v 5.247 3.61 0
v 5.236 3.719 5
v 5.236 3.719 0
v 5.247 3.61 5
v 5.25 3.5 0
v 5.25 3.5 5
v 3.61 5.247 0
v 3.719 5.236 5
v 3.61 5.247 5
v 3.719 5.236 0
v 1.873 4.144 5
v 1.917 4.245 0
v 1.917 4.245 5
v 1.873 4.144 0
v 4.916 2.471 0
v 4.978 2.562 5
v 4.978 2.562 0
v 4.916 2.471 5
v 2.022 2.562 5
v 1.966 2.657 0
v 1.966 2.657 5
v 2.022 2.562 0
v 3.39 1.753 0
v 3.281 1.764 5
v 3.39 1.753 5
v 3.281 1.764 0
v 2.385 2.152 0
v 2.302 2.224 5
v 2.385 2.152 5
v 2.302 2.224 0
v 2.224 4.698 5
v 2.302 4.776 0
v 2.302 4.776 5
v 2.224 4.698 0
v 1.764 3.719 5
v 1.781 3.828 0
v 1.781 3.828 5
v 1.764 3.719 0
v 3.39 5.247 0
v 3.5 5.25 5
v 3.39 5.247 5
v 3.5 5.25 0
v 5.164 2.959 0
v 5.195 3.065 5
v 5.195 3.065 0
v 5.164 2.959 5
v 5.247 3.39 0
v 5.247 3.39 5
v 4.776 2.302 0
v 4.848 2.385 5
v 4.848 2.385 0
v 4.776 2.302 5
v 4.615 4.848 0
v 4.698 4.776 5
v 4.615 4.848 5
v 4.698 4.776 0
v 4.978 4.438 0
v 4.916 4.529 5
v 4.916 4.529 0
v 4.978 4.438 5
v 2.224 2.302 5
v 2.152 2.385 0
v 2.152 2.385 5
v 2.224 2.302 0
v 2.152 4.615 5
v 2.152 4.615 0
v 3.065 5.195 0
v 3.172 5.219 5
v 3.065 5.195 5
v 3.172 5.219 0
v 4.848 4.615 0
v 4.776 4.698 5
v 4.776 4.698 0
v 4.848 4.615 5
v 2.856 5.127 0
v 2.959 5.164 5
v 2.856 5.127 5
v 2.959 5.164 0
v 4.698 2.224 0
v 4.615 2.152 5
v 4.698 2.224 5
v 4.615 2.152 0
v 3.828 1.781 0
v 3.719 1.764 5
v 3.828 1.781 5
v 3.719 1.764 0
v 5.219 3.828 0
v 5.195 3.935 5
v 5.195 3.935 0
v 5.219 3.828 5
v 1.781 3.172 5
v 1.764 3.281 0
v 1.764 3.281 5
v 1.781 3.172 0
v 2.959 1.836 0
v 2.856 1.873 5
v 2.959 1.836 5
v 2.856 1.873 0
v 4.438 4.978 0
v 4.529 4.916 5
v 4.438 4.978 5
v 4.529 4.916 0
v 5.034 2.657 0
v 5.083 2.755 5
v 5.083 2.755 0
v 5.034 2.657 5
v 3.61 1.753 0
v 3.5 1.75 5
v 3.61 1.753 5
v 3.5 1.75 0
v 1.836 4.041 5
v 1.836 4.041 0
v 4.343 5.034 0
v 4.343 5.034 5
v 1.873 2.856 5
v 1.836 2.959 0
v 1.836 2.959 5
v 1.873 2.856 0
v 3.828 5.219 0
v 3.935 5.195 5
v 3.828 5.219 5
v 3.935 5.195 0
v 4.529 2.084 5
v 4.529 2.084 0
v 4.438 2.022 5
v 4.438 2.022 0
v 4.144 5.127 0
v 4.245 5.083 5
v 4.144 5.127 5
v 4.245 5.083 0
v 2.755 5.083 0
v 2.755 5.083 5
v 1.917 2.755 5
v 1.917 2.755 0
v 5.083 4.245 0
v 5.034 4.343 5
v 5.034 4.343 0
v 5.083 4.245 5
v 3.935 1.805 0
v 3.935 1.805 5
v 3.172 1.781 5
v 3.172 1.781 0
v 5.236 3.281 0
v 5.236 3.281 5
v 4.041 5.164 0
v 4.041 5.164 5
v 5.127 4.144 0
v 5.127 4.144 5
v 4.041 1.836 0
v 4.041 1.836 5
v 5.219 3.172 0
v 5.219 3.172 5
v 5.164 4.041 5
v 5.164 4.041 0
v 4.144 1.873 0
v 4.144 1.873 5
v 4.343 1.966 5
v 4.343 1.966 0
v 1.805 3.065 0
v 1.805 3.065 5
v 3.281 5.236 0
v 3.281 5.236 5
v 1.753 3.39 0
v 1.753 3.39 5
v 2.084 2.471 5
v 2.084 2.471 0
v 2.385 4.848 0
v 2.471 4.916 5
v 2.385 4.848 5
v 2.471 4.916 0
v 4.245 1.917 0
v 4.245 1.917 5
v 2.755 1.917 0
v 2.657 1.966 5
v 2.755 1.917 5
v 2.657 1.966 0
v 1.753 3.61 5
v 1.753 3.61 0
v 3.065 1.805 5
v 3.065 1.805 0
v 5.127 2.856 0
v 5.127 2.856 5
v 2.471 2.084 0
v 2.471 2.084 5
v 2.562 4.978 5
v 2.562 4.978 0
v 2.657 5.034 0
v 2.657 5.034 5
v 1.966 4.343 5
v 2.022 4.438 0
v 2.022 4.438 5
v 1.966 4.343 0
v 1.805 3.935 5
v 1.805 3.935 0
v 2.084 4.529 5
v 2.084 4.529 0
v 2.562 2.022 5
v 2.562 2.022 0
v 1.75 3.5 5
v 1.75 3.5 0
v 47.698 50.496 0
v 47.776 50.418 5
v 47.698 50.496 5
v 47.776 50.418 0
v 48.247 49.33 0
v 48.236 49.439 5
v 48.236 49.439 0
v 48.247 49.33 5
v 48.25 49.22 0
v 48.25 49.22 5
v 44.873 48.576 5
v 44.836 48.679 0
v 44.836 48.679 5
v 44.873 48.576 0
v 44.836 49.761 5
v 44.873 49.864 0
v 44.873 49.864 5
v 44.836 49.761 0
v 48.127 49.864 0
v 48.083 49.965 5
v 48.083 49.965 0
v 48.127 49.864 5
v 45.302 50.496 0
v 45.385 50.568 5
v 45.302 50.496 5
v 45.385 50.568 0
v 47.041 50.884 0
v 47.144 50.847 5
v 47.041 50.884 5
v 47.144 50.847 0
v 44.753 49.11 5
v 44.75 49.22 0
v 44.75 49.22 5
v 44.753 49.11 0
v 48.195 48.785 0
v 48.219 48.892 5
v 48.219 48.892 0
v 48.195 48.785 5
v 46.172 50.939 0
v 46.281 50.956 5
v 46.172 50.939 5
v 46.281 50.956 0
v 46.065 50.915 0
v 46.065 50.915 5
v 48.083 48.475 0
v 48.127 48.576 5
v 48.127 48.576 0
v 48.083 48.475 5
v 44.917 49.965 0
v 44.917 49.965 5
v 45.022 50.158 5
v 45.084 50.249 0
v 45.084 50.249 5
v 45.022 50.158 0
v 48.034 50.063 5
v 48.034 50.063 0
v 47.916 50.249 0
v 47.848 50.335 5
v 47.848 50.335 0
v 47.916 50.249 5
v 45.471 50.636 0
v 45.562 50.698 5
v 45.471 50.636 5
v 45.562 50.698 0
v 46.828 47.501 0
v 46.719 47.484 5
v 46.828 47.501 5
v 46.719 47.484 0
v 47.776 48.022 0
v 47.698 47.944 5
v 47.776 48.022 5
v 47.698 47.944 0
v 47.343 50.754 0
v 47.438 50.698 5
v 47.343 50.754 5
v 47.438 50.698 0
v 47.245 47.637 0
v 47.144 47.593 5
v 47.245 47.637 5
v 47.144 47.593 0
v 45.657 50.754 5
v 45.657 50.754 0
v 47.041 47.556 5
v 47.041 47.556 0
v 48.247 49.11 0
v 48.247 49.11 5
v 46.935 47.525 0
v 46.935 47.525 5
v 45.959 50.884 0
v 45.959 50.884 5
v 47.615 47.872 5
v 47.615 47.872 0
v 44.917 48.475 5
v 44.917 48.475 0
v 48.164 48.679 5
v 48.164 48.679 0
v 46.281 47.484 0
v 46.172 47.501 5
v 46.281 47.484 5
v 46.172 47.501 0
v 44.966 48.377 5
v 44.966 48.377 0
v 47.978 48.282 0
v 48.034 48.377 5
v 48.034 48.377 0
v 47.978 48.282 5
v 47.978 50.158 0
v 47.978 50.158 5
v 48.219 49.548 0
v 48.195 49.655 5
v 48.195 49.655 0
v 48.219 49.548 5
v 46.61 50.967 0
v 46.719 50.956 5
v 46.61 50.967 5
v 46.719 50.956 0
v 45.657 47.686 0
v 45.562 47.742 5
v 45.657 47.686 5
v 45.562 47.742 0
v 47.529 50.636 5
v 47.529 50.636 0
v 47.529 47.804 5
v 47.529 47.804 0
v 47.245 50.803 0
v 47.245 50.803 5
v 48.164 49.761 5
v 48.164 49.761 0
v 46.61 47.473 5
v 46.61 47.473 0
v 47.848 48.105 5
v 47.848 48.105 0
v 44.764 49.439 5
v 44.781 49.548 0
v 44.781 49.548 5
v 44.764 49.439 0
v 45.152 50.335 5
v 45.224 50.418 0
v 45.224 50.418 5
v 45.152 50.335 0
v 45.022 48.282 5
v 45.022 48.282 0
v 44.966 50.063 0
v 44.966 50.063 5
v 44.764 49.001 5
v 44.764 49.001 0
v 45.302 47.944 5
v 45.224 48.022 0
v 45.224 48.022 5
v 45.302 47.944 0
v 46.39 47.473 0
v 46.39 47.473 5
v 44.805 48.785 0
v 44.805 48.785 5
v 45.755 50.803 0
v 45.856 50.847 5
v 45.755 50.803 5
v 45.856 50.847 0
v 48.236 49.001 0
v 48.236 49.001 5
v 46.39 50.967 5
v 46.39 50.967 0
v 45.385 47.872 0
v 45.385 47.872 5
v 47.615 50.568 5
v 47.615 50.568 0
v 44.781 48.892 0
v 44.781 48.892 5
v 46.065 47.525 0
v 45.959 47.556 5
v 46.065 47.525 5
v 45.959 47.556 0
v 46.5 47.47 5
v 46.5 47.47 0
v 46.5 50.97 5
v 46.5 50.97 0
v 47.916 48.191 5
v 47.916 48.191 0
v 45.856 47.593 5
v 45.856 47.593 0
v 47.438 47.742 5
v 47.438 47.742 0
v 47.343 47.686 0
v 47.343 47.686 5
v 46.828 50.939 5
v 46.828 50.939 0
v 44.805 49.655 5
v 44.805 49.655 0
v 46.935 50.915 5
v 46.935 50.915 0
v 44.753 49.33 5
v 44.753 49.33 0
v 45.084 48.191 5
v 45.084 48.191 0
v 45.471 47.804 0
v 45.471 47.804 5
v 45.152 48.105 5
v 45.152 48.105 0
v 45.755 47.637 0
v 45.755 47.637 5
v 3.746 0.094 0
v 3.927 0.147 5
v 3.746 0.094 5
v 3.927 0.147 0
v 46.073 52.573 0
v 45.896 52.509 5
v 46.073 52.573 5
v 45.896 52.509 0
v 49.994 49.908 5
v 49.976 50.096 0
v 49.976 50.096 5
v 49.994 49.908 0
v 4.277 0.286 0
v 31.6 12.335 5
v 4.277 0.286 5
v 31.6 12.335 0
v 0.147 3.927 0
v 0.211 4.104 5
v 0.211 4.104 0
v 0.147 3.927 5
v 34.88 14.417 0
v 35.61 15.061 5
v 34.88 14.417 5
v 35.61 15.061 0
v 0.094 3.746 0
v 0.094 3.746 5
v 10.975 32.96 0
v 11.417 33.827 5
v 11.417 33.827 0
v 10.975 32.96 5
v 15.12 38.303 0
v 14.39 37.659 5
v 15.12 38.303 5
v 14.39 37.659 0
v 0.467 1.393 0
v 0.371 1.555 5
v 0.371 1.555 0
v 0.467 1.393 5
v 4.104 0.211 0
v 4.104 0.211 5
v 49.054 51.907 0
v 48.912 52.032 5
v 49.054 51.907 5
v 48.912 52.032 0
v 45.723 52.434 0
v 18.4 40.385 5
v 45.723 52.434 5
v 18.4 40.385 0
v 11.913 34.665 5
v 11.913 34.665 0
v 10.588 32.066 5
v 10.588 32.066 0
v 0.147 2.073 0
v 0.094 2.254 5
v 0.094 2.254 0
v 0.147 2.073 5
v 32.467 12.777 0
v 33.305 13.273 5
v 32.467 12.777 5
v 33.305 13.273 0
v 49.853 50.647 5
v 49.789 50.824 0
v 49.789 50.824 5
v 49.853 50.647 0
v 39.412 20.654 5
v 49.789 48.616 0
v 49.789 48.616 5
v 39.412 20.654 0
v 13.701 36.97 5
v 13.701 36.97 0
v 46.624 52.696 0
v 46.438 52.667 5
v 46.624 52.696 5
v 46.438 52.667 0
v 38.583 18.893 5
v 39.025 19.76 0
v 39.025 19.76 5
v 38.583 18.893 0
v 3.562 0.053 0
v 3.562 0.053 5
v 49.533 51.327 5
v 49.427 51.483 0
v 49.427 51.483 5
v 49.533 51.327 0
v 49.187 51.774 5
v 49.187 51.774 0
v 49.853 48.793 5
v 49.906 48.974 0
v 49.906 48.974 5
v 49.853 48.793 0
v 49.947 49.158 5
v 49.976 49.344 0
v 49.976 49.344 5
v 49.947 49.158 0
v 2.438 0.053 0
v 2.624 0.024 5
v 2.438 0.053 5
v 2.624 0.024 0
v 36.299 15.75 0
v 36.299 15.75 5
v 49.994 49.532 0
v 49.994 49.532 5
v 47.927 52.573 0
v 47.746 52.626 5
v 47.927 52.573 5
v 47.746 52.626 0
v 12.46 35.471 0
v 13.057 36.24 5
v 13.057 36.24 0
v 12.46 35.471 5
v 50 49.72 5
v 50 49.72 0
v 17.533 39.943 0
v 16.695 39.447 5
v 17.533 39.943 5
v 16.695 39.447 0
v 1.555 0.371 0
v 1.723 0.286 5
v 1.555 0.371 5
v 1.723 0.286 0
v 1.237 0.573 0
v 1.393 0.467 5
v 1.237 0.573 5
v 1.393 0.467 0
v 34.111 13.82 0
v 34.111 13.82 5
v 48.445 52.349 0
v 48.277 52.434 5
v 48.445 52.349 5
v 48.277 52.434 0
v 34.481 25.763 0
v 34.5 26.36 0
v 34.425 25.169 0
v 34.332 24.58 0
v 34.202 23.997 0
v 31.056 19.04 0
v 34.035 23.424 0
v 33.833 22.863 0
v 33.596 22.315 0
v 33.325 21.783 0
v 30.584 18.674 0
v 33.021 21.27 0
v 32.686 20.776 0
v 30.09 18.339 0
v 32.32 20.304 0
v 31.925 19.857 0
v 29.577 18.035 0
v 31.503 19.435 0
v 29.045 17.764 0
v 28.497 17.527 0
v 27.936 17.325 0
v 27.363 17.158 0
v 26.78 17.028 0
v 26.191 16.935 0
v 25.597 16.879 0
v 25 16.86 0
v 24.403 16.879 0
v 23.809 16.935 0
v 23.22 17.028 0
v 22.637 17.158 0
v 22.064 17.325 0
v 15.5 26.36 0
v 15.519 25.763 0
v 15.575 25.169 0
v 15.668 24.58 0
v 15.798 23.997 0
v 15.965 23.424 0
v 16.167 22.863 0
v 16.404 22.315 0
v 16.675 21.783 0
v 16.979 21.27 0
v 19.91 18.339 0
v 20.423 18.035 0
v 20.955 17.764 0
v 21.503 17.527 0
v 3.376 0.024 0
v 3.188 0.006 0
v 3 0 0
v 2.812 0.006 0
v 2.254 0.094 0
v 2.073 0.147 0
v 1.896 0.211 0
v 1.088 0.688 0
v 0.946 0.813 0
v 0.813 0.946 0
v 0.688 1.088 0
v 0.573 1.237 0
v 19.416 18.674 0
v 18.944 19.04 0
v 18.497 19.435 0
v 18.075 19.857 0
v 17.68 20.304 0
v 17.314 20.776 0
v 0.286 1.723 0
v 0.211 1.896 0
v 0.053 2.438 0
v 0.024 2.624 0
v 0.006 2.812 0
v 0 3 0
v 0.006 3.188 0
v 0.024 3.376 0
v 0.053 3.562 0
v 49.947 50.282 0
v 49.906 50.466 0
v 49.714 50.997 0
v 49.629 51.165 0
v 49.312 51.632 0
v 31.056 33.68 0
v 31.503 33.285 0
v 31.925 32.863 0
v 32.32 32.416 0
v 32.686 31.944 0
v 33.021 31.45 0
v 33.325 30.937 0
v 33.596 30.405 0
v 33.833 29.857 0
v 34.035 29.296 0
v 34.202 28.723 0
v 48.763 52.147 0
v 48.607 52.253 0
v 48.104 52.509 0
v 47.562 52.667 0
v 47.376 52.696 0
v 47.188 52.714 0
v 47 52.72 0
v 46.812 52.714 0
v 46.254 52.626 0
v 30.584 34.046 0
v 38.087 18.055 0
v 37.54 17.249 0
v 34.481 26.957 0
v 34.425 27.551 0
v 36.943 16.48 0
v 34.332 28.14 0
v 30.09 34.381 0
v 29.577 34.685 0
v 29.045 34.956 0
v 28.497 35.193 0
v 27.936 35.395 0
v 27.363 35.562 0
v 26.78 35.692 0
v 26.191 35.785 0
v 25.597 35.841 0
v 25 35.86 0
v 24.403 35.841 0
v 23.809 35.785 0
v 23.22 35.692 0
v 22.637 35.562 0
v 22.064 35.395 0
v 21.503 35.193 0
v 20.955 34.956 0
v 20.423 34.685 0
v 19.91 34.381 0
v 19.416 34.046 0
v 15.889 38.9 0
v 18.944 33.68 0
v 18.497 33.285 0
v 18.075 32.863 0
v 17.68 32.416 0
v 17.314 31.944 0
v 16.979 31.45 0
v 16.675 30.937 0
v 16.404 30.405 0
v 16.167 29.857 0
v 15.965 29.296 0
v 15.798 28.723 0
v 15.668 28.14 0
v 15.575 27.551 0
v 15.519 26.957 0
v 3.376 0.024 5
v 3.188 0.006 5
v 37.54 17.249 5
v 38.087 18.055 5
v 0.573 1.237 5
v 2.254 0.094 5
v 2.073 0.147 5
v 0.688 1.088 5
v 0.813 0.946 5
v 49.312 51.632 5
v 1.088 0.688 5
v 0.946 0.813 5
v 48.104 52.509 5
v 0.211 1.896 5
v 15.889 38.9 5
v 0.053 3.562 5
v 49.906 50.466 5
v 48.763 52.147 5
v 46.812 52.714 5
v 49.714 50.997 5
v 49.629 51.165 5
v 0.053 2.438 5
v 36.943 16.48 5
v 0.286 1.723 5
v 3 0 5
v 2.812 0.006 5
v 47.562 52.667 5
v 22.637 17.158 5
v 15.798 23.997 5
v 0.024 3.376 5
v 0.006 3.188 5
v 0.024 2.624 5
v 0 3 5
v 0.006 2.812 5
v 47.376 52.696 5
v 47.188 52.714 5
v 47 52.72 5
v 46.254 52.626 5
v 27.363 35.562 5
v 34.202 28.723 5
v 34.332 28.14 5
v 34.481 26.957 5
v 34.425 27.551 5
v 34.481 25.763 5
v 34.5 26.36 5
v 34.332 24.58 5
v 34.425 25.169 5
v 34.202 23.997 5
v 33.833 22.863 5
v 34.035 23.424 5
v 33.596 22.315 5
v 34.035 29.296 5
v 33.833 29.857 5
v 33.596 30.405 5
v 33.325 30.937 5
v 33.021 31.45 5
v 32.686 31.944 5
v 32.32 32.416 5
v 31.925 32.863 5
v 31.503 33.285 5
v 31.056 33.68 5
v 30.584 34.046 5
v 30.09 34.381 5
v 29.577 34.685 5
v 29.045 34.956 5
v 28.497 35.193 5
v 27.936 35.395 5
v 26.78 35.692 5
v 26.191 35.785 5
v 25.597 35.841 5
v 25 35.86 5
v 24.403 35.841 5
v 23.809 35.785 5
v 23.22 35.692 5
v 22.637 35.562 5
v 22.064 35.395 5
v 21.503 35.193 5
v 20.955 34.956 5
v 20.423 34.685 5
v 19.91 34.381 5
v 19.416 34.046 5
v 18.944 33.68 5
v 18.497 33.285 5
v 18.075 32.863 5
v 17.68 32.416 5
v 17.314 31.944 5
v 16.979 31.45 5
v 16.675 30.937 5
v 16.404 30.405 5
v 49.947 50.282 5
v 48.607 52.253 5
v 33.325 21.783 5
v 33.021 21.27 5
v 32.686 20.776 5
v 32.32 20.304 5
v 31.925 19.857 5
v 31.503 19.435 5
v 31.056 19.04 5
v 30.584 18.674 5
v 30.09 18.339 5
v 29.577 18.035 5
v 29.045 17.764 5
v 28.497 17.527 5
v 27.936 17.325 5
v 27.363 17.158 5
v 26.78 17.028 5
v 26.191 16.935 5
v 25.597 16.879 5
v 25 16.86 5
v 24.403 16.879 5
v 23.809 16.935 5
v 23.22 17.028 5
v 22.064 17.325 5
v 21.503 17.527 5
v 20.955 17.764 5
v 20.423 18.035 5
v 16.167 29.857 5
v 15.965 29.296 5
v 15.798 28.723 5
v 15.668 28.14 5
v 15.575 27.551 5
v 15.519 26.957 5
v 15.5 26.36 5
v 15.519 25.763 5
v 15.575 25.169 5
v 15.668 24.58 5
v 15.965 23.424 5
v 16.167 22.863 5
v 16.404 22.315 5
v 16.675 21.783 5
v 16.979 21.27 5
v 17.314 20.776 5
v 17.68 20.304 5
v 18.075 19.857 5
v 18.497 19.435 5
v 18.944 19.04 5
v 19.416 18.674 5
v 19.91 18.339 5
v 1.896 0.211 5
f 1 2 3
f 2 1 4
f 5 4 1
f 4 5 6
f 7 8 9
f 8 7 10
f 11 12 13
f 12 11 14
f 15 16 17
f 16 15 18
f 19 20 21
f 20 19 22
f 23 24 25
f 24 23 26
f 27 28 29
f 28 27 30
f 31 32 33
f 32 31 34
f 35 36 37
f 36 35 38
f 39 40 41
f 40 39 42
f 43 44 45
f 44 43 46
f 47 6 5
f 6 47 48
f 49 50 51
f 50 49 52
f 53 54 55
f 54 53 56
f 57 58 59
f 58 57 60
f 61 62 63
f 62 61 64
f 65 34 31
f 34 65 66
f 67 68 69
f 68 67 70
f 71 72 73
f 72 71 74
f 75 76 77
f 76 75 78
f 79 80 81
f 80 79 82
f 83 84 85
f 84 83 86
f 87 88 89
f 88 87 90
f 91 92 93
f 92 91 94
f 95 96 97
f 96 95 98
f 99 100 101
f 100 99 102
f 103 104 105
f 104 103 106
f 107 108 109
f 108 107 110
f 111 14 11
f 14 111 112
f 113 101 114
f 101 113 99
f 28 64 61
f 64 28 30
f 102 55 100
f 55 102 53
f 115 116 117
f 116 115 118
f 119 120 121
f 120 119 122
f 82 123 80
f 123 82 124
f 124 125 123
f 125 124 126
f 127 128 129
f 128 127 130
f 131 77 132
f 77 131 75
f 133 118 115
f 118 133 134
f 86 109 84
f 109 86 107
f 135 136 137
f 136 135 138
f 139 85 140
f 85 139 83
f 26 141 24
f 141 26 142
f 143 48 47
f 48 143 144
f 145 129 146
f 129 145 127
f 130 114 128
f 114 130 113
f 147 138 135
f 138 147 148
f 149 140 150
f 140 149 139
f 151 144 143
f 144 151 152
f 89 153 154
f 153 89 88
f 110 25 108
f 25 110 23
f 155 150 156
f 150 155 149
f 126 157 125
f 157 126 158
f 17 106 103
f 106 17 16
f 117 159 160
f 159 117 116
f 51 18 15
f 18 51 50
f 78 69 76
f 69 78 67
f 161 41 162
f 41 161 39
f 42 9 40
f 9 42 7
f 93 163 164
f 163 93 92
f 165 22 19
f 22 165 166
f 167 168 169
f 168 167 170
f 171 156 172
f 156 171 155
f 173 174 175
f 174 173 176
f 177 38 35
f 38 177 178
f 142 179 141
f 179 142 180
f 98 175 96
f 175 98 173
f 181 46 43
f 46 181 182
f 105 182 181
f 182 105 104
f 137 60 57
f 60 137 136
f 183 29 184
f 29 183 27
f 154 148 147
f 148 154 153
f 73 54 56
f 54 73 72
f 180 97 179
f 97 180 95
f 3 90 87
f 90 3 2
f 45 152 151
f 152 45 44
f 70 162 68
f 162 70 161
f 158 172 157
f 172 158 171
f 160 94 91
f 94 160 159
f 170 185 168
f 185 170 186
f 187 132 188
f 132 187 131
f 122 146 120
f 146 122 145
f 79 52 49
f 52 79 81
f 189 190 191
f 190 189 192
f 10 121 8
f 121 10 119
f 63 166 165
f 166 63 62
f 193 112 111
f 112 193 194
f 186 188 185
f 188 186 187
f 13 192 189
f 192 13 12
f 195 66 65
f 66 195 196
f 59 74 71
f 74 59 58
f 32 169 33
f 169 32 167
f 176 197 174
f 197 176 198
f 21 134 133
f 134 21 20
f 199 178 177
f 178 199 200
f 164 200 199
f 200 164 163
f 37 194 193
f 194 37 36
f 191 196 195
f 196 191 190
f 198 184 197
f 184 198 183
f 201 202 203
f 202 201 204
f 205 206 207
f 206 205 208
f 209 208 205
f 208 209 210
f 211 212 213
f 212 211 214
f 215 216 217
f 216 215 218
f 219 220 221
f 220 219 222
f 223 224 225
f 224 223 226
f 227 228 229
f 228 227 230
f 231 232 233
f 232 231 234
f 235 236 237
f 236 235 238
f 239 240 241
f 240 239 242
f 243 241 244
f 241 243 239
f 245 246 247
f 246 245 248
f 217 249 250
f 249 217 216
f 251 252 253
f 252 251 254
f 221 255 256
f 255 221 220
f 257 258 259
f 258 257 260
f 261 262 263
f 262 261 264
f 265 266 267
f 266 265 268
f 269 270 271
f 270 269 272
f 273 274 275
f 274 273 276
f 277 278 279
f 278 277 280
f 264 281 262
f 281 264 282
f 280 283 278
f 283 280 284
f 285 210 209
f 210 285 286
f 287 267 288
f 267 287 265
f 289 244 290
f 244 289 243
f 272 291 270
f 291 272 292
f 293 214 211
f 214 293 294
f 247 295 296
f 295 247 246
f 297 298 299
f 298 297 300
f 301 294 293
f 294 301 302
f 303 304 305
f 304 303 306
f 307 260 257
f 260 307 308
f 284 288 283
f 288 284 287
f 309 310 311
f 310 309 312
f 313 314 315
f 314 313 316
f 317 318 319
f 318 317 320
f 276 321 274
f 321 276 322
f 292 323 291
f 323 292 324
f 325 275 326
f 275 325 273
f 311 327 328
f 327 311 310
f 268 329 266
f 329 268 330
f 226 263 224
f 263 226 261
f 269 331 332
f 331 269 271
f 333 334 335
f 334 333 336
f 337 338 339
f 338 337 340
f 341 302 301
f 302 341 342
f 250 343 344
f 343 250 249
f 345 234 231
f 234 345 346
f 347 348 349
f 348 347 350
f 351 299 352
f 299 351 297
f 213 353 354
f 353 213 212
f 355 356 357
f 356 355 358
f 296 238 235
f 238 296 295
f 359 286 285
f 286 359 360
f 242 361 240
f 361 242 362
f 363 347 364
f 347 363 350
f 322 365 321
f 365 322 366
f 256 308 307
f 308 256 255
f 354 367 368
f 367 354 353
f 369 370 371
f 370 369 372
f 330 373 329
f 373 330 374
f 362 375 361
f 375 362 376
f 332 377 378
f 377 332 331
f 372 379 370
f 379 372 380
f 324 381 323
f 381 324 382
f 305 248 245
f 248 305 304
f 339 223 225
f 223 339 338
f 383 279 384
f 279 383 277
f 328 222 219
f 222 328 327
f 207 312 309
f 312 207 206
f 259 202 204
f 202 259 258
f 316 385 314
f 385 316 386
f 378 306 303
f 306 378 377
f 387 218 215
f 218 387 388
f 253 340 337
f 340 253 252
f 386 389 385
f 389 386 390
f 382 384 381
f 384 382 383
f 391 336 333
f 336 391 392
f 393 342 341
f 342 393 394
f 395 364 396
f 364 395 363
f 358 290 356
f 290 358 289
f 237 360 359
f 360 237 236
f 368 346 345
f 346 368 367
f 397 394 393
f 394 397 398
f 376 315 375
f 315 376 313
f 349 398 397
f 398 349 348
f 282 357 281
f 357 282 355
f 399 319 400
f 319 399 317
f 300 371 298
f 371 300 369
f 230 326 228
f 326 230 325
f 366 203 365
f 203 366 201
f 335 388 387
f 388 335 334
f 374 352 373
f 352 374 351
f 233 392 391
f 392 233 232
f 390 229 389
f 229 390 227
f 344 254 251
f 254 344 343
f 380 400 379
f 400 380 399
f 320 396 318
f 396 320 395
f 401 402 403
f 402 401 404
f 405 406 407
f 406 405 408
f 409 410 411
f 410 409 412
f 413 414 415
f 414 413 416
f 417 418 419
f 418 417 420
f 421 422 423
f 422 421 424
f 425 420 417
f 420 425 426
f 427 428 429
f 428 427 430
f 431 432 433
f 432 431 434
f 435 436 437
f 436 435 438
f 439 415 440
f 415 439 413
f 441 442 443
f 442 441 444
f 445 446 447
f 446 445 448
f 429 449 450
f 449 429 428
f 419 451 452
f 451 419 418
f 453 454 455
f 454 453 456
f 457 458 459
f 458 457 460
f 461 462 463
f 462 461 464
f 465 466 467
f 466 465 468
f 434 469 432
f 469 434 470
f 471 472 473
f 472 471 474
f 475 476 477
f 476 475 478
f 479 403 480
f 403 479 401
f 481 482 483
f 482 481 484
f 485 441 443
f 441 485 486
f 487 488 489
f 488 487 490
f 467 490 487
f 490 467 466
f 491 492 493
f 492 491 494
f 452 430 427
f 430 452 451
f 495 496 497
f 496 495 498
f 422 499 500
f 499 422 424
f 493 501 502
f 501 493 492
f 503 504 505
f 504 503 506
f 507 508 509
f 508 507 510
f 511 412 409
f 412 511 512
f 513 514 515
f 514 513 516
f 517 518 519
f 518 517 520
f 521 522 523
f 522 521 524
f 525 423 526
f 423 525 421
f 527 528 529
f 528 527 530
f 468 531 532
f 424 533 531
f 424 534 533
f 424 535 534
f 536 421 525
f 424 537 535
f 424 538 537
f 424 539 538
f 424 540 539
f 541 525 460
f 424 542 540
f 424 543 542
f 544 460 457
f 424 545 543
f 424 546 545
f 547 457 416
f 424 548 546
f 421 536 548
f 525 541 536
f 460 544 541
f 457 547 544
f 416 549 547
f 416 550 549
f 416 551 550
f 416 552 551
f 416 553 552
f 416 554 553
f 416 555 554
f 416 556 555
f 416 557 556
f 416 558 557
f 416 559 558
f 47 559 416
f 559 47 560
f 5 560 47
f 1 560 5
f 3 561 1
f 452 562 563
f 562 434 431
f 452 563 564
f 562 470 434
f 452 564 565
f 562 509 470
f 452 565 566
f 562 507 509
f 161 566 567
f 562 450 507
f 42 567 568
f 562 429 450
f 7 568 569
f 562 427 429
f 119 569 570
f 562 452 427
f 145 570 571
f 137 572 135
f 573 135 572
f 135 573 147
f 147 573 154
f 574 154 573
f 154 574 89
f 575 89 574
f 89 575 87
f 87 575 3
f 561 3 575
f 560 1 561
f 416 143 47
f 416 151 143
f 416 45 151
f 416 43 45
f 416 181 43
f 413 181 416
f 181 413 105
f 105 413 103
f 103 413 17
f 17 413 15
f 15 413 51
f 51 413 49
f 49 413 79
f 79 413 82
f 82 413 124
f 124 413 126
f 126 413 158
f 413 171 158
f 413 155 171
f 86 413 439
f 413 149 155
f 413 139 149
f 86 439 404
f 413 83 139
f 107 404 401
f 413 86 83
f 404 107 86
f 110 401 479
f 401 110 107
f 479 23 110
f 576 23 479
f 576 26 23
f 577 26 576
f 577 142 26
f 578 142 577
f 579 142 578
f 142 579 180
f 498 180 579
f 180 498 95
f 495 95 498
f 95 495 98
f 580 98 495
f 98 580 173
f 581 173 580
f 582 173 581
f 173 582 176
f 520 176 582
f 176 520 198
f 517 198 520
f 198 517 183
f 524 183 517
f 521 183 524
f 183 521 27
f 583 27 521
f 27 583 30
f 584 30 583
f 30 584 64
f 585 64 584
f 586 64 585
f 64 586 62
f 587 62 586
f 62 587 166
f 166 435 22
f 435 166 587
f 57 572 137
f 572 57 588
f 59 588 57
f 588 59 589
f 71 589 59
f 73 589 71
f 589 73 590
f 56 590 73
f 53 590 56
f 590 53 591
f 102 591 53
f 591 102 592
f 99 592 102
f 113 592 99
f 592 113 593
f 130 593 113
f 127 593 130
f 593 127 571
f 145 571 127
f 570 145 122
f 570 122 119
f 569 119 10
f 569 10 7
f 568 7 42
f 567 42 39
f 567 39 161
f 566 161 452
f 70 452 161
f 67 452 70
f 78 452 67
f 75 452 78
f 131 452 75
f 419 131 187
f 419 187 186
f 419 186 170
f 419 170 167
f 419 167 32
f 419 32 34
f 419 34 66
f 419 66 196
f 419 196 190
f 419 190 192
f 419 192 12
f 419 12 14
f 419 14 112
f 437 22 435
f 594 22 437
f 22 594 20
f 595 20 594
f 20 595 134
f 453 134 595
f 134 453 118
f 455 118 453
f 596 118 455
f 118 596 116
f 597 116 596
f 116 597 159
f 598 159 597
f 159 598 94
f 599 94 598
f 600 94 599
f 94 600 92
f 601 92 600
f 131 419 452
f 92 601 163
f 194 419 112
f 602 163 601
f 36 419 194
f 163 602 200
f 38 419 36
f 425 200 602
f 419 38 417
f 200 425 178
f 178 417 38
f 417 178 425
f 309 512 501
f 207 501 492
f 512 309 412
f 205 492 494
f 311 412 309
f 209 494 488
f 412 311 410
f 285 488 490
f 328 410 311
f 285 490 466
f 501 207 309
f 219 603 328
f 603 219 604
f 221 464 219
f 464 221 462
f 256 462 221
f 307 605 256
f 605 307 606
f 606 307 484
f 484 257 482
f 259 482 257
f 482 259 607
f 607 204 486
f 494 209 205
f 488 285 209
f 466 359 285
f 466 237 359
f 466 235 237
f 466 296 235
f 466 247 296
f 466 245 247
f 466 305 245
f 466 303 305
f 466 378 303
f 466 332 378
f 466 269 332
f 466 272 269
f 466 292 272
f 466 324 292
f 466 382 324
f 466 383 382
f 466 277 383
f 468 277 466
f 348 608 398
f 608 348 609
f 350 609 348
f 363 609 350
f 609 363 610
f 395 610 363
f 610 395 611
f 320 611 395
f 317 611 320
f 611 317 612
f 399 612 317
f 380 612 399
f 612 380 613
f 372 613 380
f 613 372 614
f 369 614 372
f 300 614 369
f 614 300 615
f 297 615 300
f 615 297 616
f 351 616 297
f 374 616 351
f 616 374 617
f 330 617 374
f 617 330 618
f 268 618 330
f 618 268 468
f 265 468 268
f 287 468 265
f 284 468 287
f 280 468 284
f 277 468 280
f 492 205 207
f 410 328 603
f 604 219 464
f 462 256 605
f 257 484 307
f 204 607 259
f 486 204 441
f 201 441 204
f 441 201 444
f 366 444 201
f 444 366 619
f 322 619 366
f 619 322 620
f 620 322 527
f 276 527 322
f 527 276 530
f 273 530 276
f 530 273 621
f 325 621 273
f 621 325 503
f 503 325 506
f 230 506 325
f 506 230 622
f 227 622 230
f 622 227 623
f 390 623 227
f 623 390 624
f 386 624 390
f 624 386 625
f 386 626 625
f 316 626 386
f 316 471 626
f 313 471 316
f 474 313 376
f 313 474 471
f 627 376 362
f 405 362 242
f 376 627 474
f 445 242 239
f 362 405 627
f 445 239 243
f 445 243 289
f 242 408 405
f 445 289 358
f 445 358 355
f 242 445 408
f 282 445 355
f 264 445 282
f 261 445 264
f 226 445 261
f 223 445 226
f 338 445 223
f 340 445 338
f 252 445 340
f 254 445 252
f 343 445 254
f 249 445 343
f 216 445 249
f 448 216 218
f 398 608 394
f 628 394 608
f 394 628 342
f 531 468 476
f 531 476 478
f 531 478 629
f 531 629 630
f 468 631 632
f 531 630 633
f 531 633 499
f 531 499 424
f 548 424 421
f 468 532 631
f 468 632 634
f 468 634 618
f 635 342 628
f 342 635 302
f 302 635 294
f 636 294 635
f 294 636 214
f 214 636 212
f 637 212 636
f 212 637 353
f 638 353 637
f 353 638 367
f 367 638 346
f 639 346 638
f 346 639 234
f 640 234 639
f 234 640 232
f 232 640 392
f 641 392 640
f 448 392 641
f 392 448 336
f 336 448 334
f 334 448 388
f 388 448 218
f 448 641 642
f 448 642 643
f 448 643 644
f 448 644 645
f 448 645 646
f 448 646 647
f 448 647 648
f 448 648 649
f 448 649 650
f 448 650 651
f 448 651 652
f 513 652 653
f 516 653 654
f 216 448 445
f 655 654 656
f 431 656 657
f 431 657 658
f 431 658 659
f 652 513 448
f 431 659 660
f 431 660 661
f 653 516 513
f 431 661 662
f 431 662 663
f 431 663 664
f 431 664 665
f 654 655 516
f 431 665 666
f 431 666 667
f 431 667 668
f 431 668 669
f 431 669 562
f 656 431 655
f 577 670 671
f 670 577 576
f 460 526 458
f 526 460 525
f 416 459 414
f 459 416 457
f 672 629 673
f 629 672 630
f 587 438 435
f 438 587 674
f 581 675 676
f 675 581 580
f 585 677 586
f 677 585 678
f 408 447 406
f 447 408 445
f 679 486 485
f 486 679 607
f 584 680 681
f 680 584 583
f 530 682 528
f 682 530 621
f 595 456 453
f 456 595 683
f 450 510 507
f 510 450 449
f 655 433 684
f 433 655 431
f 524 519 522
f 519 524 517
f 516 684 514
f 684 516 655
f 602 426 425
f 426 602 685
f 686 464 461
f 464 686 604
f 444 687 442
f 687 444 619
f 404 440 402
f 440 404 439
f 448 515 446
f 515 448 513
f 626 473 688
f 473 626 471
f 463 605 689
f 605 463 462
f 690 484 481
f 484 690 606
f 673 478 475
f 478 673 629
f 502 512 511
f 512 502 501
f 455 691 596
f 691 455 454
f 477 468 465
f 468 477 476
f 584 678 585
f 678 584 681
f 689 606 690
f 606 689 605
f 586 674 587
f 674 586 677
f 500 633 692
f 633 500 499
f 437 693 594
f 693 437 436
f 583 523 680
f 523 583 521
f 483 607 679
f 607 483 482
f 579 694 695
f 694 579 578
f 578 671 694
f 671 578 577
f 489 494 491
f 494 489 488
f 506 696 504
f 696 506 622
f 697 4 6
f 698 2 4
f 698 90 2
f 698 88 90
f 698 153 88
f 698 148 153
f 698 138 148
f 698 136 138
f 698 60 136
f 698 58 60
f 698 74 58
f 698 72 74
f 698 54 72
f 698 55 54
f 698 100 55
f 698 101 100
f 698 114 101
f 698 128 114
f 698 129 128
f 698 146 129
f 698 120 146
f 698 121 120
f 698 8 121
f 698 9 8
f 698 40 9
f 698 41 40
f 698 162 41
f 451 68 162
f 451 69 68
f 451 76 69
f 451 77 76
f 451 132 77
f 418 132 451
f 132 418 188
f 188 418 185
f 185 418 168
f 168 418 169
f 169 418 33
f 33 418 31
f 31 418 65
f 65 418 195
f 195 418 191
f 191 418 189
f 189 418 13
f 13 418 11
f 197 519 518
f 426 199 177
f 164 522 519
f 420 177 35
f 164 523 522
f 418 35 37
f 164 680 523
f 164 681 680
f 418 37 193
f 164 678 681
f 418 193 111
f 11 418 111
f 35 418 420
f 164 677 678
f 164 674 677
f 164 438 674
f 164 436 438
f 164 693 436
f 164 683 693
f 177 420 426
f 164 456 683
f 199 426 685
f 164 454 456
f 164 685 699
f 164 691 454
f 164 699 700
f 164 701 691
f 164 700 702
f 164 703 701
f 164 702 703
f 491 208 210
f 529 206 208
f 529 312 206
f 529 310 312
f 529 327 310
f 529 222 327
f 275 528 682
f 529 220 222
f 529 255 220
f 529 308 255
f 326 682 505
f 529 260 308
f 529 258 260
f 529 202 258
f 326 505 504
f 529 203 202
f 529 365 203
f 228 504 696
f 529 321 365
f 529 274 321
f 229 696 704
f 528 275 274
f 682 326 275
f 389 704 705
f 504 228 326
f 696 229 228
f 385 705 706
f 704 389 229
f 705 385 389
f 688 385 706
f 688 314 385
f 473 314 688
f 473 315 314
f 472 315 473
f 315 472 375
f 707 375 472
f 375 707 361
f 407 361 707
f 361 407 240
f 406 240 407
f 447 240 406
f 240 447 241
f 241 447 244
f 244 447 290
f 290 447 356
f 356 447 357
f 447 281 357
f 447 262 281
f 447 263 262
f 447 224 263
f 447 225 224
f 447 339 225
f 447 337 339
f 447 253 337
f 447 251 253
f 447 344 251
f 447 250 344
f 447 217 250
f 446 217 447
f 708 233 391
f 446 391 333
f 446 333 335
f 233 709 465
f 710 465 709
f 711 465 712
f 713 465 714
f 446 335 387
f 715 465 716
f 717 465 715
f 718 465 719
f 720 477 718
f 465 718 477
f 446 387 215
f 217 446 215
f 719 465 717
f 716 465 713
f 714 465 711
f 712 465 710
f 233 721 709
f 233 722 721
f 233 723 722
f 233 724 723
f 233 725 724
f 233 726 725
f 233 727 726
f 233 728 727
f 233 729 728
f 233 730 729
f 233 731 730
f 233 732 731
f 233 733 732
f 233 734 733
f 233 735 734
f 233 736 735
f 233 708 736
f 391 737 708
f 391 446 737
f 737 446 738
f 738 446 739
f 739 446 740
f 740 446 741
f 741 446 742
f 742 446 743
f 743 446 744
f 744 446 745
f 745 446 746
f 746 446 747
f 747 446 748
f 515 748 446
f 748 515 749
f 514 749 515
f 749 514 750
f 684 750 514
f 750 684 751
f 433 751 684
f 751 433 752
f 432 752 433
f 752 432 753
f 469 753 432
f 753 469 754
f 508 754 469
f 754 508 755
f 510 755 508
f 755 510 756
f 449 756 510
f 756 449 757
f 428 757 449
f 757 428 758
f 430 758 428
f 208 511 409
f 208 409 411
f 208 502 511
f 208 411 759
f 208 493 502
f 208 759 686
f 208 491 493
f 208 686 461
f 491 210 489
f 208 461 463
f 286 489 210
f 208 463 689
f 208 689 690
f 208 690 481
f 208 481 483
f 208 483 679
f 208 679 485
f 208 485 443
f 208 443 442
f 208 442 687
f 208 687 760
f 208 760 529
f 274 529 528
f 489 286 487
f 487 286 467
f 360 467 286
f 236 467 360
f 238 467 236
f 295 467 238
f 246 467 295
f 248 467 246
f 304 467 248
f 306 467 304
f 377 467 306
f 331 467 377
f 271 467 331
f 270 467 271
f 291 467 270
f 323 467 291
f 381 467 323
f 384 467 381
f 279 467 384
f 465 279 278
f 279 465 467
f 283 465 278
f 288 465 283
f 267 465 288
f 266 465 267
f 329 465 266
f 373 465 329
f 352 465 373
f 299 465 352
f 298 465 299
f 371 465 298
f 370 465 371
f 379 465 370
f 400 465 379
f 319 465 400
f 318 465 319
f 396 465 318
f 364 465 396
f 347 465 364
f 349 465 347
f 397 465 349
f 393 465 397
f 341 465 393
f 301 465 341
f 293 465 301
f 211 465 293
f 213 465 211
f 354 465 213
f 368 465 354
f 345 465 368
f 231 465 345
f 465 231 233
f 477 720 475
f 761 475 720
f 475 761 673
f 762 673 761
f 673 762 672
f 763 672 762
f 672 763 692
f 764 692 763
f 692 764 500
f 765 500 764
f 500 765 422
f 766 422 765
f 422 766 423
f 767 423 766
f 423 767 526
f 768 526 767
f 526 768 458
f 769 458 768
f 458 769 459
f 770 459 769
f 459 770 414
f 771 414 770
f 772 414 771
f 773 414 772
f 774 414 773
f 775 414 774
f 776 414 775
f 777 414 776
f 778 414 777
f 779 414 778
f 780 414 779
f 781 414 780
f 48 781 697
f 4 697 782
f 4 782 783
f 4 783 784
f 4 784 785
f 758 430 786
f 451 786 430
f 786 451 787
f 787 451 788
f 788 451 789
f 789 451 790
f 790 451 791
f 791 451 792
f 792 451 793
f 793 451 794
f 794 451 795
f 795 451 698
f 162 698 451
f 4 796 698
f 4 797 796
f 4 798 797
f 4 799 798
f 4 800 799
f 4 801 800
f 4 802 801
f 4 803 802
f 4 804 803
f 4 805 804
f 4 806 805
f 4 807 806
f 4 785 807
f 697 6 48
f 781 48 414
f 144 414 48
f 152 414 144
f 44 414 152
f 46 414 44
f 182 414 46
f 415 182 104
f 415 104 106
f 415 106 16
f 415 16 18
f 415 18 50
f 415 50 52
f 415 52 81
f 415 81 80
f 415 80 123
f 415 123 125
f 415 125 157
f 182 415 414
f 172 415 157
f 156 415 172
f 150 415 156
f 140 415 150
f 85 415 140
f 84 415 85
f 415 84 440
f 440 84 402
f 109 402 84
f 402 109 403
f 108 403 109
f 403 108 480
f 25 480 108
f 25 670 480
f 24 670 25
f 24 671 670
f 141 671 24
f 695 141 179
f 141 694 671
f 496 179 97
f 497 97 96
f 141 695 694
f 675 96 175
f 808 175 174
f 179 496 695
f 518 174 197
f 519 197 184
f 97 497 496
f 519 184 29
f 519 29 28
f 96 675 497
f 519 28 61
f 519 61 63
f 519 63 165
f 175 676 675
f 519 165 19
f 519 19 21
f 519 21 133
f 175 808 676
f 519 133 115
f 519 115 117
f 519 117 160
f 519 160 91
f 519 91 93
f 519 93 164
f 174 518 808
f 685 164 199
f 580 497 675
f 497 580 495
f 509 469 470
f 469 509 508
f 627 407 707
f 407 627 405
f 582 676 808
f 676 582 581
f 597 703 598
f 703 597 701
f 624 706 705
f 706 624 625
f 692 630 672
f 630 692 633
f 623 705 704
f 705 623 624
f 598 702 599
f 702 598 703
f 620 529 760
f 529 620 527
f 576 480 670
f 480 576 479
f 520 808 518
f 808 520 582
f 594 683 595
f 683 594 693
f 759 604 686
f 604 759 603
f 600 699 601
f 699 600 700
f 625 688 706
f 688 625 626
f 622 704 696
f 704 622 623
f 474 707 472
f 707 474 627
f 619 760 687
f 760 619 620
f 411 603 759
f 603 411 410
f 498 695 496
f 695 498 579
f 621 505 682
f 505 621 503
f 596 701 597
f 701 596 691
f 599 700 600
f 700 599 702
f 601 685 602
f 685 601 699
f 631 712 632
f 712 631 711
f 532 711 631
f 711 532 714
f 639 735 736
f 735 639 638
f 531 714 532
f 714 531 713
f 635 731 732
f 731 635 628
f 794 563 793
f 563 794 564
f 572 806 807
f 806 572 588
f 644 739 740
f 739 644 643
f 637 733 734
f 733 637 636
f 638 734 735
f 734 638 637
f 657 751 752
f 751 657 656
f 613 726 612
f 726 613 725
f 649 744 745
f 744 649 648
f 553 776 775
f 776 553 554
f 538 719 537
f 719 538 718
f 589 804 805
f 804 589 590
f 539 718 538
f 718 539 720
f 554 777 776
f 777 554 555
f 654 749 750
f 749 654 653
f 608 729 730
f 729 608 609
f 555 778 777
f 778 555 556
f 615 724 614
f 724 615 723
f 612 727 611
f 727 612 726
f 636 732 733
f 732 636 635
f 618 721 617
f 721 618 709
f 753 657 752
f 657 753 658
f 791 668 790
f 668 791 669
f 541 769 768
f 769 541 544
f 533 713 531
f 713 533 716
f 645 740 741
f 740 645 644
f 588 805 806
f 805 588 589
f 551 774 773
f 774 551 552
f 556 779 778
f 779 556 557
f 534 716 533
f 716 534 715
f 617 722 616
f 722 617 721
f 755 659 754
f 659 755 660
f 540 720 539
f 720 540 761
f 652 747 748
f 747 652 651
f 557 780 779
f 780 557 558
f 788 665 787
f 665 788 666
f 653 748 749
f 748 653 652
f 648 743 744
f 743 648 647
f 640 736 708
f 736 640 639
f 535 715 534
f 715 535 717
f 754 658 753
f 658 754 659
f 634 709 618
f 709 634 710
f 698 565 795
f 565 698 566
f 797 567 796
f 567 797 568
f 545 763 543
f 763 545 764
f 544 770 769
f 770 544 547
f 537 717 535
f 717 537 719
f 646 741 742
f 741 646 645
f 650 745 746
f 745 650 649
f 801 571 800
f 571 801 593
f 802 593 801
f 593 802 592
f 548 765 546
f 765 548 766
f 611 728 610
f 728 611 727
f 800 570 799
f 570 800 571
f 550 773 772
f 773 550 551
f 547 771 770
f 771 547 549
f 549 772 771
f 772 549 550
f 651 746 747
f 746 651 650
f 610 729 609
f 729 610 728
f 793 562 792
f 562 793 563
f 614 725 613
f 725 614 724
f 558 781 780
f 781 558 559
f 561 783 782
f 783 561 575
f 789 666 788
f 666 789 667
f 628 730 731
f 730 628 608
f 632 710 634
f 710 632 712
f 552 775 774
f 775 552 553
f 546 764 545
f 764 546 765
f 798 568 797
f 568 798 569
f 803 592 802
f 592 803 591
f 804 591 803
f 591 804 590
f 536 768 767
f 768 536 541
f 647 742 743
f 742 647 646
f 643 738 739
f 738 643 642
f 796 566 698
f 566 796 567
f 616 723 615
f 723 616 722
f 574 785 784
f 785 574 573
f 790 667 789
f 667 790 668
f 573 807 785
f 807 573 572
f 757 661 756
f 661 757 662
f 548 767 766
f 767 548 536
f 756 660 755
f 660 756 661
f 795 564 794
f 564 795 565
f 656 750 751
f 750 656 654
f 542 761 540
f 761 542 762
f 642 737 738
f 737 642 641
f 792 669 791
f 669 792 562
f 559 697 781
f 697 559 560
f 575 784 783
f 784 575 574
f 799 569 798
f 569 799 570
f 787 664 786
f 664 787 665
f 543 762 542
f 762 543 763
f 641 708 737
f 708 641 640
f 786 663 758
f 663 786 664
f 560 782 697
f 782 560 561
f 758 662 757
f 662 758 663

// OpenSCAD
// file: ../enveloppes/speaker-40mm-throws-enveloppe.scad
include <../configurations/global.scad>

/**
 * speaker28mmThrowsEnveloppe
 * @name speaker28mmThrowsEnveloppe
 * @description speaker28mmThrowsEnveloppe
 * @type enveloppe
 * @parent root
 */
module speaker40mmThrowsEnveloppe(
    speaker_facade_throw_diameter = speaker_facade_throw_diameter,
    case_external_panes_thickness = case_external_panes_thickness

) {

    translate([0, 0, -case_external_panes_thickness * 2])
    cylinder(
        d = speaker_facade_throw_diameter,
        h = case_external_panes_thickness * 4,
        $fn = 100
    );
}

speaker40mmThrowsEnveloppe();
// file: subpieces/rounded-pane.scad
/**
 * roundedPane
 * @name roundedPane
 * @description roundedPane
 * @type Supbiece
 * @parent 
 */
module roundedPane(
    x_y_z_coords,
    r1,
    r2,
    center = false,
    $fn = $fn
) {
    x = x_y_z_coords[0];
    y = x_y_z_coords[1];
    z = x_y_z_coords[2];

    r = (r1 < r2) ? r2 : r1;

    module _pane() {
        hull() {
            translate([r,r,0]) {
                cylinder(z, r1 = r1, r2 = r2);
            }

            translate([x-r,r,0]) {
                cylinder(z, r1 = r1, r2 = r2);
            }

            translate([r,y-r,0]) {
                cylinder(z, r1 = r1, r2 = r2);
            }

            translate([x-r,y-r,0]) {
                cylinder(z, r1 = r1, r2 = r2);
            }
        }
    }

    if (center) {
        translate([-x / 2, -y / 2, -z / 2])
            _pane();
    } else {
        _pane();
    }

}
// file: ../libraries/electronics.scad
/**
 * getPointSize
 * @returns Point size (mil)
 */
function getPointSize() = 2.54;


/**
 * getSizeFromPointCount
 * @returns dimension in milimeters from points numbers
 */
function getSizeFromPointCount(point_count) = (point_count + 1) * getPointSize();
// file: ../libraries/commons.scad
/**
 * forEachCoord
 * Wrapper to apply child on each element
 */
module forEachCoord(coords_list) {
    for (coords = coords_list)
        translate(
            [
                coords[0] == undef ? 0 : coords[0],
                coords[1] == undef ? 0 : coords[1],
                coords[2] == undef ? 0 : coords[2],
            ]
        )
            children();
}
// file: ../configurations/global.scad
// gold_number = 1.618;

housing_facades_throws_diameter = 3.8;

// external size
case_external_x_size = 165;
case_external_y_size = 92;
case_external_z_size = 38;
case_external_panes_thickness = 4.8;

facade_front_round_edges_radius = 5;
facade_throws_margin = 5;

// facade corners
facade_corners_offset_lenght = 9;
facade_corners_main_x_size = 19;
facade_corners_main_y_size = 19;
facade_corners_main_thickness = 11;
facade_corners_correction_offset_length = 0.2;
facade_corners_correction_offset_thickness = 0.0;
facade_fn = 100;


// Generics
insert_throw_diameter = 4.2;
insert_throw_length = 6 + 2;


// mother board
mother_board_cny70set_x_point_coord = 10;
mother_board_cny70set_y_point_coord = 7;



// Cassette
cassette_x_size = 50;
cassette_y_size = 31;
cassette_z_size = 4.8;
cassette_round_radius = 4;

// Cassette case
cassette_case_x_size = 76.2;
cassette_case_y_size = 55.88;
cassette_case_z_size = 9;
cassette_case_round_radius = 1;

cassette_case_x_y_margin = 0.75;

cassette_case_embed_x_size = 62;
cassette_case_embed_y_size = 42;
cassette_case_embed_z_size = 4.8;
cassette_case_embed_offsets = 10;
cassette_case_embed_round_radius = 6;

cassette_case_throws_margin = 2.54 * 2;
cassette_case_throws_diameter = 3.5;
cassette_case_grip_enveloppe_diameter = 15;
cassette_case_grip_enveloppe_offset = 3;

cassette_case_cny70set_x_point_coord = mother_board_cny70set_x_point_coord;
cassette_case_cny70set_y_point_coord = mother_board_cny70set_y_point_coord;
cassette_case_cny70set_x_y_margin = 0.5;

// Front panel throw cassette case mounting 
cassette_case_embed_throw_margin = 0.5;


// Mother board joins
bolt_join_mother_board_internal_diameter = 3.5;
bolt_join_mother_board_external_diameter = 3.5 + (0.4 * 12);
bolt_join_mother_board_height = 8.5;
bolt_join_fn = 200;


// speaker facade
speaker_facade_x_size = 50;
speaker_facade_y_size = cassette_case_y_size - cassette_case_throws_margin * 2 + 7;
speaker_facade_z_size = 2;
speaker_facade_rounded_radius = 3;
speaker_facade_fixation_throws_margin = 3.5;
speaker_facade_fixation_throws_diameter = 3.5;
speaker_facade_throw_diameter = 40+1;
// 
facade_top_on_off_button_throw_diameter = 12.8;


facade_cassette_case_coords = [
    60 + 5,
    23,
];

facade_speaker_40mm_coords = [
    32 + 5,
    facade_cassette_case_coords[1] + (cassette_case_y_size / 2),
];

batteries_holder_coords = [
    8 + 5,
    20
];

volume_buttons_spacing = 20;
//volume_buttons_coords = [145,50];
volume_buttons_coords = [
    145 + 5 ,
    facade_cassette_case_coords[1] + (cassette_case_y_size / 2),
];

controller_buttons_spacing = 20;
//controller_buttons_coords = [98,14];
controller_buttons_coords = [
    facade_cassette_case_coords[0] + (cassette_case_x_size / 2),
    14
];

controller_onoff_coords = [
    32 + 5,
    14
];
// main file
include <./../configurations/global.scad>
use <./../libraries/commons.scad>
use <./../libraries/electronics.scad>

use <./subpieces/rounded-pane.scad>
use <../enveloppes/speaker-40mm-throws-enveloppe.scad>

/**
 * speakerFacadePiece
 * @name speakerFacadePiece
 * @description Speaker protection
 * @type piece
 * @parent root
 * @stl
 */
module speakerHolder(
    x_size = speaker_facade_x_size,
    y_size = speaker_facade_y_size,
    z_size = 5,
    throws_margin = speaker_facade_fixation_throws_margin,
    rounded_radius = speaker_facade_rounded_radius,
    throws_diameter = speaker_facade_fixation_throws_diameter,
    $fn = 100
) {

    difference() {

        //translate([0, 0, z_size / 2])
        //roundedPane([x_size, y_size, z_size], r1 = rounded_radius, r2 = rounded_radius);

        hull(){

            translate([rounded_radius, rounded_radius])
                cylinder(h = z_size, r = rounded_radius, $fn = $fn);

            
            translate([x_size / 2, y_size / 2])
                cylinder(h = z_size, d = 31, $fn = $fn);
            
            translate([-rounded_radius, -rounded_radius])
                translate([x_size, y_size])
                    cylinder(h = z_size, r = rounded_radius, $fn = $fn);

        }
        

        translate([x_size / 2, y_size / 2])
            cylinder(h = z_size * 4, d = 19, center=true, $fn = $fn);
            
        speakerFacadePieceFixationThrows();
    }
}


module speakerFacadePieceFixationThrows(
    x_size = speaker_facade_x_size,
    y_size = speaker_facade_y_size,
    z_size = 5,
    throws_margin = speaker_facade_fixation_throws_margin,
    throws_diameter = speaker_facade_fixation_throws_diameter,
    $fn = 100
) {
    translate([0, 0, -z_size / 2])
        forEachCoord([
            [throws_margin, throws_margin],
            [x_size - throws_margin, throws_margin],
            [throws_margin, y_size - throws_margin],
            [x_size - throws_margin, y_size - throws_margin,],
        ])
            cylinder(h = z_size * 2, d = throws_diameter, $fn = $fn);
}



speakerHolder();
